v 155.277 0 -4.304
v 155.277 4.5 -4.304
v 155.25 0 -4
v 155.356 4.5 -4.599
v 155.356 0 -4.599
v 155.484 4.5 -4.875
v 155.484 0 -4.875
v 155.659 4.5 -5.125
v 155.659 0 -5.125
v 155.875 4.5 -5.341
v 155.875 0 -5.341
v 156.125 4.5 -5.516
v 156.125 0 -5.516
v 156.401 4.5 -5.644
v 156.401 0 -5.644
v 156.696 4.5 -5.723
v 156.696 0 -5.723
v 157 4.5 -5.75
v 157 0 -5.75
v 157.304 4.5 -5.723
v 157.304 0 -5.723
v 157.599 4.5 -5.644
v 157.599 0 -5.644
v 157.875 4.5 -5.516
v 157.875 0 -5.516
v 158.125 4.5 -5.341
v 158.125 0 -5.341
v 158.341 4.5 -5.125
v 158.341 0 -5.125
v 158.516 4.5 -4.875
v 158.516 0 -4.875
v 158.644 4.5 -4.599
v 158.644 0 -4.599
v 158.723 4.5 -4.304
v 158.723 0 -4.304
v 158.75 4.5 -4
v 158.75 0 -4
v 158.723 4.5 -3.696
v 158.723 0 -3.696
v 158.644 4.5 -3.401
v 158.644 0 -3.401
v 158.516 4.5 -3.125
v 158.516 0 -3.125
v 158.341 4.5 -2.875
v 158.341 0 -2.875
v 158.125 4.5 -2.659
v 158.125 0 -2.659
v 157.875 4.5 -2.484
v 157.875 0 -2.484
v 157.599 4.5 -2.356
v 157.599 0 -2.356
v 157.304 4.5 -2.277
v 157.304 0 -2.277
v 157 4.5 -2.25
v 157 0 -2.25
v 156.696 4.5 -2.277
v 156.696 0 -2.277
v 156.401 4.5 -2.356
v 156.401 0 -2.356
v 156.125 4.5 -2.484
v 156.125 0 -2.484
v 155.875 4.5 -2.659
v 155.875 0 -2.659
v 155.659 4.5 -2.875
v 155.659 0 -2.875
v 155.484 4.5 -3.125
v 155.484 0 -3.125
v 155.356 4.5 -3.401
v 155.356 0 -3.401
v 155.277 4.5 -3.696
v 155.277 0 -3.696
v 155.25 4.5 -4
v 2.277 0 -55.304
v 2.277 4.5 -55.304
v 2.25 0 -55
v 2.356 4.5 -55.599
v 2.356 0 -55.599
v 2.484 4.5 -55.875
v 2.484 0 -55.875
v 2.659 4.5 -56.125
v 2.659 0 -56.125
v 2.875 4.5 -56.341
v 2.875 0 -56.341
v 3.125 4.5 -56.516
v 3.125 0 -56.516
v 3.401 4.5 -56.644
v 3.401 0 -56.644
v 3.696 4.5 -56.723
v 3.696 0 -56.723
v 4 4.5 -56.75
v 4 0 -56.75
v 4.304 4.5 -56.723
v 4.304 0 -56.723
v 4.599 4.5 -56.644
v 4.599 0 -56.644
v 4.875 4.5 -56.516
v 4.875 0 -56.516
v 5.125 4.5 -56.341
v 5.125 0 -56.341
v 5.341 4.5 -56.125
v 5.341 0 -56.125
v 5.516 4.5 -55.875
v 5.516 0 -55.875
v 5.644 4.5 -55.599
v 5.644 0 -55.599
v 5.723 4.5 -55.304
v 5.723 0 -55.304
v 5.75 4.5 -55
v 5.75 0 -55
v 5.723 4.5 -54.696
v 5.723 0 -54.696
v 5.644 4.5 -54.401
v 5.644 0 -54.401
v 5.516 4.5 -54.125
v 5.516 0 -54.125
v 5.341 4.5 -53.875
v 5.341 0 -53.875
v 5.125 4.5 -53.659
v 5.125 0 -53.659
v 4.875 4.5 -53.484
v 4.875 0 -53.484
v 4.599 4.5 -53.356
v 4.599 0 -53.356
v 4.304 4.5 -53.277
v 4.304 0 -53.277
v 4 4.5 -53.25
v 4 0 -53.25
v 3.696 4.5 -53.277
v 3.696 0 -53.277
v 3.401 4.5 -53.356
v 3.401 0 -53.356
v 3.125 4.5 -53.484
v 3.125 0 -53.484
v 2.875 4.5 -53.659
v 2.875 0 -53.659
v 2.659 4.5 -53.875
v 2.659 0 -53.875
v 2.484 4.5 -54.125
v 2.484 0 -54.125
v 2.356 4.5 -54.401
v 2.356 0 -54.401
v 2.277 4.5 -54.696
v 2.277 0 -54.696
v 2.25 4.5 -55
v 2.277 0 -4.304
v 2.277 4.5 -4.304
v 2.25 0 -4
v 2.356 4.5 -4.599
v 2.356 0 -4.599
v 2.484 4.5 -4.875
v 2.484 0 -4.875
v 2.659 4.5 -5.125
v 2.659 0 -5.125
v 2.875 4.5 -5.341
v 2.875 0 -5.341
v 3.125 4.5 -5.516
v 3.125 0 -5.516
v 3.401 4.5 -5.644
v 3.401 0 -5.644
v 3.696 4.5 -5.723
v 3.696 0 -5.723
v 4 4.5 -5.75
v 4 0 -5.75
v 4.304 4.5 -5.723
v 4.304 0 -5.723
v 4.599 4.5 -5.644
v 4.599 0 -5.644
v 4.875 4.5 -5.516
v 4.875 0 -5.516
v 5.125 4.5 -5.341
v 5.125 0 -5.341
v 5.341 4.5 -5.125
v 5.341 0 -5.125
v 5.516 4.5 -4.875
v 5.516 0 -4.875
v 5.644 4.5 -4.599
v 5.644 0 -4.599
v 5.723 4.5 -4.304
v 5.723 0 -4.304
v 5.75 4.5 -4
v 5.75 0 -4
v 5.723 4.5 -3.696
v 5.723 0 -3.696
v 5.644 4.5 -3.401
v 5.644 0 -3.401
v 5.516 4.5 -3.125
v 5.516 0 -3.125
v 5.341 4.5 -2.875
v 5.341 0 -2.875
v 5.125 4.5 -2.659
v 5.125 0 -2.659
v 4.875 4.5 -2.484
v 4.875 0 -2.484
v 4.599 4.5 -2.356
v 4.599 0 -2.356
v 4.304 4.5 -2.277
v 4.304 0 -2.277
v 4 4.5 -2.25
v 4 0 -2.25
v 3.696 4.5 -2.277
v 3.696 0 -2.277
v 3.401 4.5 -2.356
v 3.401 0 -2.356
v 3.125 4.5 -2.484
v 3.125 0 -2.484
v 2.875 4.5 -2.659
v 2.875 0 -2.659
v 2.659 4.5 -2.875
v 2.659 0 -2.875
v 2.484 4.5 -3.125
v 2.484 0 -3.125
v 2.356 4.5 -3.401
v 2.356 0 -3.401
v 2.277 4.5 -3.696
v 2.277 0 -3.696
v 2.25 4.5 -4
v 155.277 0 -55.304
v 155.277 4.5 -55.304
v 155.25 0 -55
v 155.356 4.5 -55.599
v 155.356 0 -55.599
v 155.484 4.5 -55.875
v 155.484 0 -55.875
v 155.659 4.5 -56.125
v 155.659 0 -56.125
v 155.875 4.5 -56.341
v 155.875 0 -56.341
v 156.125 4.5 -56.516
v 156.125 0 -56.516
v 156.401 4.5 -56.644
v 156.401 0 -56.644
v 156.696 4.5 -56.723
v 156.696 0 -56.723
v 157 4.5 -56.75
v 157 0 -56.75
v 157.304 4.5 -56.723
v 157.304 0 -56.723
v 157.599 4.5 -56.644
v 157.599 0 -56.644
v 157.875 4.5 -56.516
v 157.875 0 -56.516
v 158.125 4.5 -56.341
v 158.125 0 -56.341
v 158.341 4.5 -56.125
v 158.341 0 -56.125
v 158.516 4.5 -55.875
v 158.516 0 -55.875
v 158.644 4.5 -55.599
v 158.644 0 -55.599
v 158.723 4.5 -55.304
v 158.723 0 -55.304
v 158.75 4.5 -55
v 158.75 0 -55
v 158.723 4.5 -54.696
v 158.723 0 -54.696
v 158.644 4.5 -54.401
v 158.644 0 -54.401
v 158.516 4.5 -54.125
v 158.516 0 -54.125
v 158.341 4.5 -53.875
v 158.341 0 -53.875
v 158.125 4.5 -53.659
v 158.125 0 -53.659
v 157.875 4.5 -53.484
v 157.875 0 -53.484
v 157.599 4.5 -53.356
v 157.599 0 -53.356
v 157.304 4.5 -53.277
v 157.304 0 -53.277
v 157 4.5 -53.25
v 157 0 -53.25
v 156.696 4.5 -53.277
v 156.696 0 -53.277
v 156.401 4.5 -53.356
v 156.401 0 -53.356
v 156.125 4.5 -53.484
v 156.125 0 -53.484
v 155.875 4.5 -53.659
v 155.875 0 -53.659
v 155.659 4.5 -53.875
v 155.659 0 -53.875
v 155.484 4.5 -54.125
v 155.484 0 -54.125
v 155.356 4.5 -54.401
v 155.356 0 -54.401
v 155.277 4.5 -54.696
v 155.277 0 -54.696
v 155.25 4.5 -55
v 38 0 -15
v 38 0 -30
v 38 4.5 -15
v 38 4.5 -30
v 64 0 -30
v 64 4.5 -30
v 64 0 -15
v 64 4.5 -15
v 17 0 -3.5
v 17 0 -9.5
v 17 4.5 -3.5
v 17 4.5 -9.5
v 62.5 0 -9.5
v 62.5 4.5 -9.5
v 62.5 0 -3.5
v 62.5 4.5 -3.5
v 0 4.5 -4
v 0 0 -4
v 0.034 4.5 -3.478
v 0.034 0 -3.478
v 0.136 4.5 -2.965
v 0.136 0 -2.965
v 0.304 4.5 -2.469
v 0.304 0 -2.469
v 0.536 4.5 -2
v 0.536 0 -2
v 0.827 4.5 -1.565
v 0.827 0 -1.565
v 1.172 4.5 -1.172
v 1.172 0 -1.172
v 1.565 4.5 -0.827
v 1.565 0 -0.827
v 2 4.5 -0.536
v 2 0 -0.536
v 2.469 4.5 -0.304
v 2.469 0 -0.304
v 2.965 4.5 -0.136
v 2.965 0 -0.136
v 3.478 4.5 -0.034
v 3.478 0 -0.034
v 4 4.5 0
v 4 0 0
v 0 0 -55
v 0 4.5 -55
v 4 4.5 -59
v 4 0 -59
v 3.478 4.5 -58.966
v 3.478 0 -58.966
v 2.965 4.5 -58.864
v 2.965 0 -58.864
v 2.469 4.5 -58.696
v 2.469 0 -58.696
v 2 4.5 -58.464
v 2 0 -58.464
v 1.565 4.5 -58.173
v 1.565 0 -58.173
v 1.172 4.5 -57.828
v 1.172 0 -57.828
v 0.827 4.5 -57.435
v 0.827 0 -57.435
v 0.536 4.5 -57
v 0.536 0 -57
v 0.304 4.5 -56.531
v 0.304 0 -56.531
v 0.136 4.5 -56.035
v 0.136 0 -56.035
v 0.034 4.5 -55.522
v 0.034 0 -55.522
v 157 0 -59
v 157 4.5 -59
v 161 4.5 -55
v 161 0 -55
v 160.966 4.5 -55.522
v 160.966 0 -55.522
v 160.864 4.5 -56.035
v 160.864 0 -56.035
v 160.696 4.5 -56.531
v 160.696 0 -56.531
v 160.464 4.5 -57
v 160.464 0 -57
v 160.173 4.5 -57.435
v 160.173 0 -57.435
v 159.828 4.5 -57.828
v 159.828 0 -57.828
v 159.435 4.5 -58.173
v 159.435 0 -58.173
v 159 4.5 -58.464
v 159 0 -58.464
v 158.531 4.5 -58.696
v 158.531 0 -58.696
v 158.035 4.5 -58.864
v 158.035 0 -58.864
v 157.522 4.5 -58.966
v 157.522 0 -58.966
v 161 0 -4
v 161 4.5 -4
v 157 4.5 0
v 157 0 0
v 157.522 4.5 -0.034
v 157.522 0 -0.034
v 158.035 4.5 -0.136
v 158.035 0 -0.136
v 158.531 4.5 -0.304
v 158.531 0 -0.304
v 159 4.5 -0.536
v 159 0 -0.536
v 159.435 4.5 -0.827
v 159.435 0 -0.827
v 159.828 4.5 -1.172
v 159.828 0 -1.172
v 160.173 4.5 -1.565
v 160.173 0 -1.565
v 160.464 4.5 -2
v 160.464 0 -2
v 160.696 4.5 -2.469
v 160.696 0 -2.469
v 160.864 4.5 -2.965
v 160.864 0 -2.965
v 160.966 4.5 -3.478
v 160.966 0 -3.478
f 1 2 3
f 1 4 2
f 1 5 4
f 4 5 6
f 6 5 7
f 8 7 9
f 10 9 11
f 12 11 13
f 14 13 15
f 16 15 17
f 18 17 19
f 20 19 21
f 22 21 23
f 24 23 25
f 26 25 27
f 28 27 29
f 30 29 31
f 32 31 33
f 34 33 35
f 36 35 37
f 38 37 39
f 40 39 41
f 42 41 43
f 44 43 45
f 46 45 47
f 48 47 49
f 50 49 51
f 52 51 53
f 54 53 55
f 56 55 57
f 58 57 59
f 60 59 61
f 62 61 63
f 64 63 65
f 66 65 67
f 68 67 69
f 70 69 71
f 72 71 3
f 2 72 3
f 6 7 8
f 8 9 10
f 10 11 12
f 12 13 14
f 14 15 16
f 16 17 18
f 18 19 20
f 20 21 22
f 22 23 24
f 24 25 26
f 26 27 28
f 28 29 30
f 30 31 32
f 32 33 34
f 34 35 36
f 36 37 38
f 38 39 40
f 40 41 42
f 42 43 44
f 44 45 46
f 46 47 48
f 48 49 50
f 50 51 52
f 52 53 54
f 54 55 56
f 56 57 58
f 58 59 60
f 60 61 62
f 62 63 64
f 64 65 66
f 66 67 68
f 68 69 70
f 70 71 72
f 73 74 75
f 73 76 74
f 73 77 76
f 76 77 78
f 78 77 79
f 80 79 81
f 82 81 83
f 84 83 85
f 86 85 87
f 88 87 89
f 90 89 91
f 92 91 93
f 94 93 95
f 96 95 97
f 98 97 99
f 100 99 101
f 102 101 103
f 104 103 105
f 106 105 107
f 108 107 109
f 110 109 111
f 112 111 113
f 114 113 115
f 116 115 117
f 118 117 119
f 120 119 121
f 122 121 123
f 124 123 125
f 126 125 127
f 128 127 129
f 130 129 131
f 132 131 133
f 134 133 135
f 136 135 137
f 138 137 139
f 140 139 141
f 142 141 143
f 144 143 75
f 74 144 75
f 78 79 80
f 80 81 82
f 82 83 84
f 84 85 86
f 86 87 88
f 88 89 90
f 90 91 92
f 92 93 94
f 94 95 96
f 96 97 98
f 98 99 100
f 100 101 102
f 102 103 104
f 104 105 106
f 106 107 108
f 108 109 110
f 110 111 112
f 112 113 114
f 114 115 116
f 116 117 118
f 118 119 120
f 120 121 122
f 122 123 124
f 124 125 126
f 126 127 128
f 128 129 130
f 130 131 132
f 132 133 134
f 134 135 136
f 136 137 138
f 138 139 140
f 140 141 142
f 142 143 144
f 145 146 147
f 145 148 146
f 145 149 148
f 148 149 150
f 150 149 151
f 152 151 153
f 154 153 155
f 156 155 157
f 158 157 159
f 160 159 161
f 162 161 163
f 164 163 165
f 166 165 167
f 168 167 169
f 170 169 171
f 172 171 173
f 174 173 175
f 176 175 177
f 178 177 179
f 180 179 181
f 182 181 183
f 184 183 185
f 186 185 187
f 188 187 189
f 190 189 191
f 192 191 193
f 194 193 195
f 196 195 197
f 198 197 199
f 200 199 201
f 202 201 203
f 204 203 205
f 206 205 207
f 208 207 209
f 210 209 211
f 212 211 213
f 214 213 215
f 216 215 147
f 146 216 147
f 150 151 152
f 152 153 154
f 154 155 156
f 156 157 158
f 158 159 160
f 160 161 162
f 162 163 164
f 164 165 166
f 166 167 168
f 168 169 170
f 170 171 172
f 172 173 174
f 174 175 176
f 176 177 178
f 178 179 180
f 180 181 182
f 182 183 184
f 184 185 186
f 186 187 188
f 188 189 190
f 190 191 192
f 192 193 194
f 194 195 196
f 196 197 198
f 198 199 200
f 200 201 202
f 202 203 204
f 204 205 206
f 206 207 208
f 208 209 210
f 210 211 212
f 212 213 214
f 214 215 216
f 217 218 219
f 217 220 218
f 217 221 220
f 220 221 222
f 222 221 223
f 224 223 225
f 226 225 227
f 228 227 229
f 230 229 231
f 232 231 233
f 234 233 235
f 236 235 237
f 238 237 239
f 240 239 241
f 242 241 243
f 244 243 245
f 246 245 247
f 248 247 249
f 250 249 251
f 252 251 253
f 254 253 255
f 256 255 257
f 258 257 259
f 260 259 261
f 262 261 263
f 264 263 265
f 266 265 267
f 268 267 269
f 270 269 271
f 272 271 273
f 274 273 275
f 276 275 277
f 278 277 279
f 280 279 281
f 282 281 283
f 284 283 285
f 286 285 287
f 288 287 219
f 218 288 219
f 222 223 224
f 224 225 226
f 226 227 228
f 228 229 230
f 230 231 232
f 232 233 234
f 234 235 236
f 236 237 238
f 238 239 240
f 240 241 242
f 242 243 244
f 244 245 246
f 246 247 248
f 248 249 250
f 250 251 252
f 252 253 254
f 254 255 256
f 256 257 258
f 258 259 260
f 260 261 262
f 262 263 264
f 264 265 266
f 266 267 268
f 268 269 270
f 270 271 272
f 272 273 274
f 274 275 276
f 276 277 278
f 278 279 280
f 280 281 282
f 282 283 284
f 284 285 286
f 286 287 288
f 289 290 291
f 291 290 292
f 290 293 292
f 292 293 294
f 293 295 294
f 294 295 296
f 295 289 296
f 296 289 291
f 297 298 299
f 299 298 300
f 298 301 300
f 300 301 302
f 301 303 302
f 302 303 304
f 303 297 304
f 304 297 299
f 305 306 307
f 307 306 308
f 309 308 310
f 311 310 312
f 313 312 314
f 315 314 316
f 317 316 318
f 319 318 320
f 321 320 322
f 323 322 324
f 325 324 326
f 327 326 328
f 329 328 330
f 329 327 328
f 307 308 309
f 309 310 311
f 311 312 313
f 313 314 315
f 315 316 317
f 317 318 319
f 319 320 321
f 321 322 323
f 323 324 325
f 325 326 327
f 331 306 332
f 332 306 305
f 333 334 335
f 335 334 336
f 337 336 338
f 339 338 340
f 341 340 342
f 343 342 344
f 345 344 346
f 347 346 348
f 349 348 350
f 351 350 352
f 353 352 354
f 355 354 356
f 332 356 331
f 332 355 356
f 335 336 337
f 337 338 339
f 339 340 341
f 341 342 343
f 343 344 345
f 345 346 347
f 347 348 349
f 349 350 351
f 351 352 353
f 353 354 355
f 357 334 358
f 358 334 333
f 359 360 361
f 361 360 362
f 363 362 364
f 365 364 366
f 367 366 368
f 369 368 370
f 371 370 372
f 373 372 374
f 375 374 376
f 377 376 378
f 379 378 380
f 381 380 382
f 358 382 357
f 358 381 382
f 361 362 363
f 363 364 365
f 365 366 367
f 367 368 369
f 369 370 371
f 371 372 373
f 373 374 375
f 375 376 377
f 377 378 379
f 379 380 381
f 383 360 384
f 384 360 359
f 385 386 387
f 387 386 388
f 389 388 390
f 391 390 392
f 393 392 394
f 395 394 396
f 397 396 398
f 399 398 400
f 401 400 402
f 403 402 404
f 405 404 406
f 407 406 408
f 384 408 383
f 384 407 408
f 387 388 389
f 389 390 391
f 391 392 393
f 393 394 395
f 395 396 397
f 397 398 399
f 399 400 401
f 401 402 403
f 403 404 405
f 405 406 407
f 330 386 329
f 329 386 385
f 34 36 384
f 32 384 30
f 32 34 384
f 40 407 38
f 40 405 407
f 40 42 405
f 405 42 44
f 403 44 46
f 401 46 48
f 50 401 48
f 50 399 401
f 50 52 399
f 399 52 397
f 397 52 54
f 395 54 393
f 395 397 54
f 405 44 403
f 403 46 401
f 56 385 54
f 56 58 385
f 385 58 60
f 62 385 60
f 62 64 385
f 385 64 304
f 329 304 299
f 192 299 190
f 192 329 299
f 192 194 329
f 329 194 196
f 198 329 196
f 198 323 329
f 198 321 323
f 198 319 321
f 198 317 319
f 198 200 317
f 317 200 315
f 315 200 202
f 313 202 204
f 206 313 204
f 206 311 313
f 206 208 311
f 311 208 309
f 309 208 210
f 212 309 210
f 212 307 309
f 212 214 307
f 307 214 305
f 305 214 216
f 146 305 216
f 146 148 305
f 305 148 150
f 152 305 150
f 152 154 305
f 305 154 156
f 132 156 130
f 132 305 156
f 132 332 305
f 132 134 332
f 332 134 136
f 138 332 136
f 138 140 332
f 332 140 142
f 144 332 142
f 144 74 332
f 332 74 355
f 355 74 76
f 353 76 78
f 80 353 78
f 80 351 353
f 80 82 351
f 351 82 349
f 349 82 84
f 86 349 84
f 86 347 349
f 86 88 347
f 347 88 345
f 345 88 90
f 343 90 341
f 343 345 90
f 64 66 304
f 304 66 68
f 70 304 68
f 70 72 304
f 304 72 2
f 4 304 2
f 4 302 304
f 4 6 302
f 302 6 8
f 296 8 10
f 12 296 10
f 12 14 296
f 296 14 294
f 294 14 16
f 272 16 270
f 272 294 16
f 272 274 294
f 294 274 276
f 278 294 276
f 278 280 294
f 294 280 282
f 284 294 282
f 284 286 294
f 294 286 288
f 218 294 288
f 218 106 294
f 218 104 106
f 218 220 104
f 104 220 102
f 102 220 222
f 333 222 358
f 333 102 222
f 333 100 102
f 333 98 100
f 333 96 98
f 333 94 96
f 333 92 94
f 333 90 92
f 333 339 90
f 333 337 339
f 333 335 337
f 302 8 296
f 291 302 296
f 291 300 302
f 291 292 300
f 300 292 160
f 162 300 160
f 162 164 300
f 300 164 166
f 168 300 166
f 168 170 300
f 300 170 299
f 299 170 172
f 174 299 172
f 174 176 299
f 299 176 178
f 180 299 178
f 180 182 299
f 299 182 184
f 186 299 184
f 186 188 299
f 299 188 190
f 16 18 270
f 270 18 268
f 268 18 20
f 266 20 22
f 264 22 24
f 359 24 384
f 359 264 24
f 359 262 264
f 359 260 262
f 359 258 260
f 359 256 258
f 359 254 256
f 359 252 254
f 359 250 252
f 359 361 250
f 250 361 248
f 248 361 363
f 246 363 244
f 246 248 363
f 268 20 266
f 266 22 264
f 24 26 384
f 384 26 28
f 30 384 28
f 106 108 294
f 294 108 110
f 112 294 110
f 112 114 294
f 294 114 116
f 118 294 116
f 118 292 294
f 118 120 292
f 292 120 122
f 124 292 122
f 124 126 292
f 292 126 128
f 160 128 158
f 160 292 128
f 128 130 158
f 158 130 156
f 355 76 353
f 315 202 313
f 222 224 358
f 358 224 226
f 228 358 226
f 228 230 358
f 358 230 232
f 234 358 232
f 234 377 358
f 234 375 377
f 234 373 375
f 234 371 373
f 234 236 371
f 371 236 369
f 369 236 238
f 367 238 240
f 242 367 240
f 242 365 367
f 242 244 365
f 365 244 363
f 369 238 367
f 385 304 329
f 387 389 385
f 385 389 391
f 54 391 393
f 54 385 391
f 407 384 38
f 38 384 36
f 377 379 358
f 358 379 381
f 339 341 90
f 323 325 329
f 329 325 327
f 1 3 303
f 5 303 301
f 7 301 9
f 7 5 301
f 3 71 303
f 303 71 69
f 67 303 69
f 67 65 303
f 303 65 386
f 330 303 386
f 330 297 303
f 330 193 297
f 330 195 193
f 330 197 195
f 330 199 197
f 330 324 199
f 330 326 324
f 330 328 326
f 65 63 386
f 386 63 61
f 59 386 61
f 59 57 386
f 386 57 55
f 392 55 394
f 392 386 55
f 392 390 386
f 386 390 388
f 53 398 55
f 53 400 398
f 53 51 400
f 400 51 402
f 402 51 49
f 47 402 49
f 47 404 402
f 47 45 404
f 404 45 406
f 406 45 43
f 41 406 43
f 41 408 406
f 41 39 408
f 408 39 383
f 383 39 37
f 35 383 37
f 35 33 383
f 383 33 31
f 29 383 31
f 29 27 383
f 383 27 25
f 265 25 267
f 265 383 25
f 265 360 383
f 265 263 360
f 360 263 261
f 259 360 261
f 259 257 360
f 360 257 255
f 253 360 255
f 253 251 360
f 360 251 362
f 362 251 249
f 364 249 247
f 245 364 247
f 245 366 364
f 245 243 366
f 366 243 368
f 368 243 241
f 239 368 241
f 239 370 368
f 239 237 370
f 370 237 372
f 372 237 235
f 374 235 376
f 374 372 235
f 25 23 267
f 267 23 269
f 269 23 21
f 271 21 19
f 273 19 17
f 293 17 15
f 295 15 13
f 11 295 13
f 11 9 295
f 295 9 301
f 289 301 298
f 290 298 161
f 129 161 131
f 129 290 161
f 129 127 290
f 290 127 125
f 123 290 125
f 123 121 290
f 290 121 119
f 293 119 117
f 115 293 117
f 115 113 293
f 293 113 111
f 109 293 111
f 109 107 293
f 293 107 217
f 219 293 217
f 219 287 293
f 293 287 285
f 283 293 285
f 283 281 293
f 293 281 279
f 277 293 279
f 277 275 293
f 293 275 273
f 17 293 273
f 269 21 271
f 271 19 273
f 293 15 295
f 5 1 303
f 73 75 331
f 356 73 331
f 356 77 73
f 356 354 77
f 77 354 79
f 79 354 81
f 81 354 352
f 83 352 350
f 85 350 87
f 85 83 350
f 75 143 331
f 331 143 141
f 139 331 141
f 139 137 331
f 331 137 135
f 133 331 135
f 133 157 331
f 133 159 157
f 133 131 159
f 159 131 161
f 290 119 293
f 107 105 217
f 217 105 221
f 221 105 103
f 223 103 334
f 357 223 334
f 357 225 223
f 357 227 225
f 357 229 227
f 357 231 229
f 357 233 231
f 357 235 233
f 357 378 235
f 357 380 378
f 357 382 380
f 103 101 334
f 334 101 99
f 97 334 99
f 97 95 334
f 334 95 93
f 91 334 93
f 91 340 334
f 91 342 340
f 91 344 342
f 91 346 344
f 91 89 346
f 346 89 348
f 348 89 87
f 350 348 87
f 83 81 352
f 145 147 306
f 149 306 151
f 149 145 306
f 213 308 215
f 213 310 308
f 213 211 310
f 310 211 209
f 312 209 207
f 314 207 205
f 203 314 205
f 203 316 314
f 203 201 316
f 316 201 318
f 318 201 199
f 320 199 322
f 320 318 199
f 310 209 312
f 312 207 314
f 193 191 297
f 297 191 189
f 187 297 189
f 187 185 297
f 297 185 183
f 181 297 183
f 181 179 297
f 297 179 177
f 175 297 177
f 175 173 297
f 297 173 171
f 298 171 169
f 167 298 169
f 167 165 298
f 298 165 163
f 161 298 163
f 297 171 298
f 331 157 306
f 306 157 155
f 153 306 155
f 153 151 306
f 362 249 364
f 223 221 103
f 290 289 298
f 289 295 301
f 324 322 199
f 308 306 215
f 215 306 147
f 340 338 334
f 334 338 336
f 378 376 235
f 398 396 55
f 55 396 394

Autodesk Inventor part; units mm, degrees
ref_plane "YZ Plane" through (0, 0, 0) normal (1, 0, 0) x (0, 1, 0)
ref_plane "XZ Plane" through (0, 0, 0) normal (0, 1, 0) x (-1, 0, 0)
ref_plane "XY Plane" through (0, 0, 0) normal (0, 0, 1) x (1, 0, 0)
sketch "Sketch1" plane through (0, 0, 0) normal (0, 1, 0) x (-1, 0, 0)
  line L0 (-4, 0) -> (-157, 0)
  line L1 (-161, -4) -> (-161, -55)
  line L2 (-157, -59) -> (-4, -59)
  line L3 (0, -55) -> (0, -4)
  line L4 (-17, -3.5) -> (-62.5, -3.5)
  line L5 (-62.5, -3.5) -> (-62.5, -9.5)
  line L6 (-62.5, -9.5) -> (-17, -9.5)
  line L7 (-17, -9.5) -> (-17, -3.5)
  line L8 (-38, -15) -> (-64, -15)
  line L9 (-64, -15) -> (-64, -30)
  line L10 (-64, -30) -> (-38, -30)
  line L11 (-38, -30) -> (-38, -15)
  arc A0 (0, -4) -> (-4, 0) centre (-4, -4) ccw
  arc A1 (-157, 0) -> (-161, -4) centre (-157, -4) ccw
  arc A2 (-161, -55) -> (-157, -59) centre (-157, -55) ccw
  arc A3 (-4, -59) -> (0, -55) centre (-4, -55) ccw
  point P0 (0, 0)
  point P1 (-161, 0)
  point P2 (0, -59)
  dimension "d0" = 161
  dimension "d1" = 59
  dimension "d2" = 6
  dimension "d3" = 45.5
  dimension "d4" = 26
  dimension "d5" = 15
  dimension "d6" = 3.5
  dimension "d7" = 15
  dimension "d8" = 17
  dimension "d9" = 38
  dimension "d10" = 4
  dimension "d20" = 51
  dimension "d21" = 153
extrude "Extrusion1" add sketch "Sketch1" along normal blind 4.5
sketch "Sketch2" plane through (0, 4.5, 0) normal (0, 1, 0) x (1, 0, 0)
  line L0 (38, 15) -> (38, 30) construction
  line L1 (38, 30) -> (64, 30) construction
  line L2 (64, 30) -> (64, 15) construction
  line L3 (64, 15) -> (38, 15) construction
  line L4 (17, 3.5) -> (17, 9.5) construction
  line L5 (17, 9.5) -> (62.5, 9.5) construction
  line L6 (62.5, 9.5) -> (62.5, 3.5) construction
  line L7 (62.5, 3.5) -> (17, 3.5) construction
  line L8 (4, 0) -> (157, 0) construction
  arc A0 (157, 0) -> (161, 4) centre (157, 4) ccw construction
  line L9 (161, 4) -> (161, 55) construction
  arc A1 (161, 55) -> (157, 59) centre (157, 55) ccw construction
  line L10 (157, 59) -> (4, 59) construction
  arc A2 (4, 59) -> (0, 55) centre (4, 55) ccw construction
  line L11 (0, 55) -> (0, 4) construction
  arc A3 (0, 4) -> (4, 0) centre (4, 4) ccw construction
  point P0 (0, 0)
hole "Hole1" at (4, 4.5, -55) at (4, 4.5, -4) at (157, 4.5, -4) at (157, 4.5, -55) direction (0, -1, 0) diameter 3.5 end through all
properties part number "A8-0005"
